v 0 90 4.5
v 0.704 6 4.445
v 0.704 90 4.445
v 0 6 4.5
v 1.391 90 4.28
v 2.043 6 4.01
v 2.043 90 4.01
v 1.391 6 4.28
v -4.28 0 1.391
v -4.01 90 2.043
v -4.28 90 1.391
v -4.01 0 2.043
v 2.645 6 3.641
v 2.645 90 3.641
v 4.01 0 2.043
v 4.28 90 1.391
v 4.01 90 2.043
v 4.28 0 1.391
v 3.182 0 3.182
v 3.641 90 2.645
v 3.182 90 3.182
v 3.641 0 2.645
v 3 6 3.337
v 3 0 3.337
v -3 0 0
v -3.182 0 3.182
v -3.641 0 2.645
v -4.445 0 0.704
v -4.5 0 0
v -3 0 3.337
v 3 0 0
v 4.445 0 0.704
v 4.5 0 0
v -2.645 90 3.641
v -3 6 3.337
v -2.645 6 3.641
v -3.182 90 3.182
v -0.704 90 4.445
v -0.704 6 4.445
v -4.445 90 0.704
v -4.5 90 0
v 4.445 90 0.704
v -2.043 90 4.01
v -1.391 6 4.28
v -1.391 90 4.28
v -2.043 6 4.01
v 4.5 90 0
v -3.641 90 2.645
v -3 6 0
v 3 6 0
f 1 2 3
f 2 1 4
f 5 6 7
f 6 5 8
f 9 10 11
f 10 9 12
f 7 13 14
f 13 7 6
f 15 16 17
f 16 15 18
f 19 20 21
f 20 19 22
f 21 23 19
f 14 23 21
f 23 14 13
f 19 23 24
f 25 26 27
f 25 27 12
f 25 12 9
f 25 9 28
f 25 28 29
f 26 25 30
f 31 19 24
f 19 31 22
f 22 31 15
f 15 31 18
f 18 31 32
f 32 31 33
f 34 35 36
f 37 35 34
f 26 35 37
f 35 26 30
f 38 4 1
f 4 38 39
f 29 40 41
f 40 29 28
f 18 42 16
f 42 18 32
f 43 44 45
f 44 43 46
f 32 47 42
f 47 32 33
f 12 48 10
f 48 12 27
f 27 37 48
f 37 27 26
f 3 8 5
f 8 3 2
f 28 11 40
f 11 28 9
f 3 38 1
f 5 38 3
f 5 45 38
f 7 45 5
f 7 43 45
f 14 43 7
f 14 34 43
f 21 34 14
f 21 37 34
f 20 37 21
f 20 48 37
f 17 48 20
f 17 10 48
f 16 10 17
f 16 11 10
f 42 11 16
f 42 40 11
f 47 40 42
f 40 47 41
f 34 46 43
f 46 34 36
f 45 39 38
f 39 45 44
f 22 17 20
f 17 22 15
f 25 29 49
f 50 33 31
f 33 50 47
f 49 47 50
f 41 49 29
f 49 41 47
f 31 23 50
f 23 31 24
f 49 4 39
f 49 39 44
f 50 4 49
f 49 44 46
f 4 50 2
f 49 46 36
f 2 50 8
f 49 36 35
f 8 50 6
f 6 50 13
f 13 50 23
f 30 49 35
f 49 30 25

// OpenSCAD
// propsaver installation tool
$fn=40;

L=90;
d1=9;
d2=6;//5;

rotate([-90,0,0]) difference() {
    cylinder(L,d=d1);
    //cylinder(L,d=d2);  // make it hollow
    translate([-d1/2,0,0]) cube([d1,d1,L]);
#   translate([-d2/2,-d2,0])  cube([d2,d2,d2]);
}
